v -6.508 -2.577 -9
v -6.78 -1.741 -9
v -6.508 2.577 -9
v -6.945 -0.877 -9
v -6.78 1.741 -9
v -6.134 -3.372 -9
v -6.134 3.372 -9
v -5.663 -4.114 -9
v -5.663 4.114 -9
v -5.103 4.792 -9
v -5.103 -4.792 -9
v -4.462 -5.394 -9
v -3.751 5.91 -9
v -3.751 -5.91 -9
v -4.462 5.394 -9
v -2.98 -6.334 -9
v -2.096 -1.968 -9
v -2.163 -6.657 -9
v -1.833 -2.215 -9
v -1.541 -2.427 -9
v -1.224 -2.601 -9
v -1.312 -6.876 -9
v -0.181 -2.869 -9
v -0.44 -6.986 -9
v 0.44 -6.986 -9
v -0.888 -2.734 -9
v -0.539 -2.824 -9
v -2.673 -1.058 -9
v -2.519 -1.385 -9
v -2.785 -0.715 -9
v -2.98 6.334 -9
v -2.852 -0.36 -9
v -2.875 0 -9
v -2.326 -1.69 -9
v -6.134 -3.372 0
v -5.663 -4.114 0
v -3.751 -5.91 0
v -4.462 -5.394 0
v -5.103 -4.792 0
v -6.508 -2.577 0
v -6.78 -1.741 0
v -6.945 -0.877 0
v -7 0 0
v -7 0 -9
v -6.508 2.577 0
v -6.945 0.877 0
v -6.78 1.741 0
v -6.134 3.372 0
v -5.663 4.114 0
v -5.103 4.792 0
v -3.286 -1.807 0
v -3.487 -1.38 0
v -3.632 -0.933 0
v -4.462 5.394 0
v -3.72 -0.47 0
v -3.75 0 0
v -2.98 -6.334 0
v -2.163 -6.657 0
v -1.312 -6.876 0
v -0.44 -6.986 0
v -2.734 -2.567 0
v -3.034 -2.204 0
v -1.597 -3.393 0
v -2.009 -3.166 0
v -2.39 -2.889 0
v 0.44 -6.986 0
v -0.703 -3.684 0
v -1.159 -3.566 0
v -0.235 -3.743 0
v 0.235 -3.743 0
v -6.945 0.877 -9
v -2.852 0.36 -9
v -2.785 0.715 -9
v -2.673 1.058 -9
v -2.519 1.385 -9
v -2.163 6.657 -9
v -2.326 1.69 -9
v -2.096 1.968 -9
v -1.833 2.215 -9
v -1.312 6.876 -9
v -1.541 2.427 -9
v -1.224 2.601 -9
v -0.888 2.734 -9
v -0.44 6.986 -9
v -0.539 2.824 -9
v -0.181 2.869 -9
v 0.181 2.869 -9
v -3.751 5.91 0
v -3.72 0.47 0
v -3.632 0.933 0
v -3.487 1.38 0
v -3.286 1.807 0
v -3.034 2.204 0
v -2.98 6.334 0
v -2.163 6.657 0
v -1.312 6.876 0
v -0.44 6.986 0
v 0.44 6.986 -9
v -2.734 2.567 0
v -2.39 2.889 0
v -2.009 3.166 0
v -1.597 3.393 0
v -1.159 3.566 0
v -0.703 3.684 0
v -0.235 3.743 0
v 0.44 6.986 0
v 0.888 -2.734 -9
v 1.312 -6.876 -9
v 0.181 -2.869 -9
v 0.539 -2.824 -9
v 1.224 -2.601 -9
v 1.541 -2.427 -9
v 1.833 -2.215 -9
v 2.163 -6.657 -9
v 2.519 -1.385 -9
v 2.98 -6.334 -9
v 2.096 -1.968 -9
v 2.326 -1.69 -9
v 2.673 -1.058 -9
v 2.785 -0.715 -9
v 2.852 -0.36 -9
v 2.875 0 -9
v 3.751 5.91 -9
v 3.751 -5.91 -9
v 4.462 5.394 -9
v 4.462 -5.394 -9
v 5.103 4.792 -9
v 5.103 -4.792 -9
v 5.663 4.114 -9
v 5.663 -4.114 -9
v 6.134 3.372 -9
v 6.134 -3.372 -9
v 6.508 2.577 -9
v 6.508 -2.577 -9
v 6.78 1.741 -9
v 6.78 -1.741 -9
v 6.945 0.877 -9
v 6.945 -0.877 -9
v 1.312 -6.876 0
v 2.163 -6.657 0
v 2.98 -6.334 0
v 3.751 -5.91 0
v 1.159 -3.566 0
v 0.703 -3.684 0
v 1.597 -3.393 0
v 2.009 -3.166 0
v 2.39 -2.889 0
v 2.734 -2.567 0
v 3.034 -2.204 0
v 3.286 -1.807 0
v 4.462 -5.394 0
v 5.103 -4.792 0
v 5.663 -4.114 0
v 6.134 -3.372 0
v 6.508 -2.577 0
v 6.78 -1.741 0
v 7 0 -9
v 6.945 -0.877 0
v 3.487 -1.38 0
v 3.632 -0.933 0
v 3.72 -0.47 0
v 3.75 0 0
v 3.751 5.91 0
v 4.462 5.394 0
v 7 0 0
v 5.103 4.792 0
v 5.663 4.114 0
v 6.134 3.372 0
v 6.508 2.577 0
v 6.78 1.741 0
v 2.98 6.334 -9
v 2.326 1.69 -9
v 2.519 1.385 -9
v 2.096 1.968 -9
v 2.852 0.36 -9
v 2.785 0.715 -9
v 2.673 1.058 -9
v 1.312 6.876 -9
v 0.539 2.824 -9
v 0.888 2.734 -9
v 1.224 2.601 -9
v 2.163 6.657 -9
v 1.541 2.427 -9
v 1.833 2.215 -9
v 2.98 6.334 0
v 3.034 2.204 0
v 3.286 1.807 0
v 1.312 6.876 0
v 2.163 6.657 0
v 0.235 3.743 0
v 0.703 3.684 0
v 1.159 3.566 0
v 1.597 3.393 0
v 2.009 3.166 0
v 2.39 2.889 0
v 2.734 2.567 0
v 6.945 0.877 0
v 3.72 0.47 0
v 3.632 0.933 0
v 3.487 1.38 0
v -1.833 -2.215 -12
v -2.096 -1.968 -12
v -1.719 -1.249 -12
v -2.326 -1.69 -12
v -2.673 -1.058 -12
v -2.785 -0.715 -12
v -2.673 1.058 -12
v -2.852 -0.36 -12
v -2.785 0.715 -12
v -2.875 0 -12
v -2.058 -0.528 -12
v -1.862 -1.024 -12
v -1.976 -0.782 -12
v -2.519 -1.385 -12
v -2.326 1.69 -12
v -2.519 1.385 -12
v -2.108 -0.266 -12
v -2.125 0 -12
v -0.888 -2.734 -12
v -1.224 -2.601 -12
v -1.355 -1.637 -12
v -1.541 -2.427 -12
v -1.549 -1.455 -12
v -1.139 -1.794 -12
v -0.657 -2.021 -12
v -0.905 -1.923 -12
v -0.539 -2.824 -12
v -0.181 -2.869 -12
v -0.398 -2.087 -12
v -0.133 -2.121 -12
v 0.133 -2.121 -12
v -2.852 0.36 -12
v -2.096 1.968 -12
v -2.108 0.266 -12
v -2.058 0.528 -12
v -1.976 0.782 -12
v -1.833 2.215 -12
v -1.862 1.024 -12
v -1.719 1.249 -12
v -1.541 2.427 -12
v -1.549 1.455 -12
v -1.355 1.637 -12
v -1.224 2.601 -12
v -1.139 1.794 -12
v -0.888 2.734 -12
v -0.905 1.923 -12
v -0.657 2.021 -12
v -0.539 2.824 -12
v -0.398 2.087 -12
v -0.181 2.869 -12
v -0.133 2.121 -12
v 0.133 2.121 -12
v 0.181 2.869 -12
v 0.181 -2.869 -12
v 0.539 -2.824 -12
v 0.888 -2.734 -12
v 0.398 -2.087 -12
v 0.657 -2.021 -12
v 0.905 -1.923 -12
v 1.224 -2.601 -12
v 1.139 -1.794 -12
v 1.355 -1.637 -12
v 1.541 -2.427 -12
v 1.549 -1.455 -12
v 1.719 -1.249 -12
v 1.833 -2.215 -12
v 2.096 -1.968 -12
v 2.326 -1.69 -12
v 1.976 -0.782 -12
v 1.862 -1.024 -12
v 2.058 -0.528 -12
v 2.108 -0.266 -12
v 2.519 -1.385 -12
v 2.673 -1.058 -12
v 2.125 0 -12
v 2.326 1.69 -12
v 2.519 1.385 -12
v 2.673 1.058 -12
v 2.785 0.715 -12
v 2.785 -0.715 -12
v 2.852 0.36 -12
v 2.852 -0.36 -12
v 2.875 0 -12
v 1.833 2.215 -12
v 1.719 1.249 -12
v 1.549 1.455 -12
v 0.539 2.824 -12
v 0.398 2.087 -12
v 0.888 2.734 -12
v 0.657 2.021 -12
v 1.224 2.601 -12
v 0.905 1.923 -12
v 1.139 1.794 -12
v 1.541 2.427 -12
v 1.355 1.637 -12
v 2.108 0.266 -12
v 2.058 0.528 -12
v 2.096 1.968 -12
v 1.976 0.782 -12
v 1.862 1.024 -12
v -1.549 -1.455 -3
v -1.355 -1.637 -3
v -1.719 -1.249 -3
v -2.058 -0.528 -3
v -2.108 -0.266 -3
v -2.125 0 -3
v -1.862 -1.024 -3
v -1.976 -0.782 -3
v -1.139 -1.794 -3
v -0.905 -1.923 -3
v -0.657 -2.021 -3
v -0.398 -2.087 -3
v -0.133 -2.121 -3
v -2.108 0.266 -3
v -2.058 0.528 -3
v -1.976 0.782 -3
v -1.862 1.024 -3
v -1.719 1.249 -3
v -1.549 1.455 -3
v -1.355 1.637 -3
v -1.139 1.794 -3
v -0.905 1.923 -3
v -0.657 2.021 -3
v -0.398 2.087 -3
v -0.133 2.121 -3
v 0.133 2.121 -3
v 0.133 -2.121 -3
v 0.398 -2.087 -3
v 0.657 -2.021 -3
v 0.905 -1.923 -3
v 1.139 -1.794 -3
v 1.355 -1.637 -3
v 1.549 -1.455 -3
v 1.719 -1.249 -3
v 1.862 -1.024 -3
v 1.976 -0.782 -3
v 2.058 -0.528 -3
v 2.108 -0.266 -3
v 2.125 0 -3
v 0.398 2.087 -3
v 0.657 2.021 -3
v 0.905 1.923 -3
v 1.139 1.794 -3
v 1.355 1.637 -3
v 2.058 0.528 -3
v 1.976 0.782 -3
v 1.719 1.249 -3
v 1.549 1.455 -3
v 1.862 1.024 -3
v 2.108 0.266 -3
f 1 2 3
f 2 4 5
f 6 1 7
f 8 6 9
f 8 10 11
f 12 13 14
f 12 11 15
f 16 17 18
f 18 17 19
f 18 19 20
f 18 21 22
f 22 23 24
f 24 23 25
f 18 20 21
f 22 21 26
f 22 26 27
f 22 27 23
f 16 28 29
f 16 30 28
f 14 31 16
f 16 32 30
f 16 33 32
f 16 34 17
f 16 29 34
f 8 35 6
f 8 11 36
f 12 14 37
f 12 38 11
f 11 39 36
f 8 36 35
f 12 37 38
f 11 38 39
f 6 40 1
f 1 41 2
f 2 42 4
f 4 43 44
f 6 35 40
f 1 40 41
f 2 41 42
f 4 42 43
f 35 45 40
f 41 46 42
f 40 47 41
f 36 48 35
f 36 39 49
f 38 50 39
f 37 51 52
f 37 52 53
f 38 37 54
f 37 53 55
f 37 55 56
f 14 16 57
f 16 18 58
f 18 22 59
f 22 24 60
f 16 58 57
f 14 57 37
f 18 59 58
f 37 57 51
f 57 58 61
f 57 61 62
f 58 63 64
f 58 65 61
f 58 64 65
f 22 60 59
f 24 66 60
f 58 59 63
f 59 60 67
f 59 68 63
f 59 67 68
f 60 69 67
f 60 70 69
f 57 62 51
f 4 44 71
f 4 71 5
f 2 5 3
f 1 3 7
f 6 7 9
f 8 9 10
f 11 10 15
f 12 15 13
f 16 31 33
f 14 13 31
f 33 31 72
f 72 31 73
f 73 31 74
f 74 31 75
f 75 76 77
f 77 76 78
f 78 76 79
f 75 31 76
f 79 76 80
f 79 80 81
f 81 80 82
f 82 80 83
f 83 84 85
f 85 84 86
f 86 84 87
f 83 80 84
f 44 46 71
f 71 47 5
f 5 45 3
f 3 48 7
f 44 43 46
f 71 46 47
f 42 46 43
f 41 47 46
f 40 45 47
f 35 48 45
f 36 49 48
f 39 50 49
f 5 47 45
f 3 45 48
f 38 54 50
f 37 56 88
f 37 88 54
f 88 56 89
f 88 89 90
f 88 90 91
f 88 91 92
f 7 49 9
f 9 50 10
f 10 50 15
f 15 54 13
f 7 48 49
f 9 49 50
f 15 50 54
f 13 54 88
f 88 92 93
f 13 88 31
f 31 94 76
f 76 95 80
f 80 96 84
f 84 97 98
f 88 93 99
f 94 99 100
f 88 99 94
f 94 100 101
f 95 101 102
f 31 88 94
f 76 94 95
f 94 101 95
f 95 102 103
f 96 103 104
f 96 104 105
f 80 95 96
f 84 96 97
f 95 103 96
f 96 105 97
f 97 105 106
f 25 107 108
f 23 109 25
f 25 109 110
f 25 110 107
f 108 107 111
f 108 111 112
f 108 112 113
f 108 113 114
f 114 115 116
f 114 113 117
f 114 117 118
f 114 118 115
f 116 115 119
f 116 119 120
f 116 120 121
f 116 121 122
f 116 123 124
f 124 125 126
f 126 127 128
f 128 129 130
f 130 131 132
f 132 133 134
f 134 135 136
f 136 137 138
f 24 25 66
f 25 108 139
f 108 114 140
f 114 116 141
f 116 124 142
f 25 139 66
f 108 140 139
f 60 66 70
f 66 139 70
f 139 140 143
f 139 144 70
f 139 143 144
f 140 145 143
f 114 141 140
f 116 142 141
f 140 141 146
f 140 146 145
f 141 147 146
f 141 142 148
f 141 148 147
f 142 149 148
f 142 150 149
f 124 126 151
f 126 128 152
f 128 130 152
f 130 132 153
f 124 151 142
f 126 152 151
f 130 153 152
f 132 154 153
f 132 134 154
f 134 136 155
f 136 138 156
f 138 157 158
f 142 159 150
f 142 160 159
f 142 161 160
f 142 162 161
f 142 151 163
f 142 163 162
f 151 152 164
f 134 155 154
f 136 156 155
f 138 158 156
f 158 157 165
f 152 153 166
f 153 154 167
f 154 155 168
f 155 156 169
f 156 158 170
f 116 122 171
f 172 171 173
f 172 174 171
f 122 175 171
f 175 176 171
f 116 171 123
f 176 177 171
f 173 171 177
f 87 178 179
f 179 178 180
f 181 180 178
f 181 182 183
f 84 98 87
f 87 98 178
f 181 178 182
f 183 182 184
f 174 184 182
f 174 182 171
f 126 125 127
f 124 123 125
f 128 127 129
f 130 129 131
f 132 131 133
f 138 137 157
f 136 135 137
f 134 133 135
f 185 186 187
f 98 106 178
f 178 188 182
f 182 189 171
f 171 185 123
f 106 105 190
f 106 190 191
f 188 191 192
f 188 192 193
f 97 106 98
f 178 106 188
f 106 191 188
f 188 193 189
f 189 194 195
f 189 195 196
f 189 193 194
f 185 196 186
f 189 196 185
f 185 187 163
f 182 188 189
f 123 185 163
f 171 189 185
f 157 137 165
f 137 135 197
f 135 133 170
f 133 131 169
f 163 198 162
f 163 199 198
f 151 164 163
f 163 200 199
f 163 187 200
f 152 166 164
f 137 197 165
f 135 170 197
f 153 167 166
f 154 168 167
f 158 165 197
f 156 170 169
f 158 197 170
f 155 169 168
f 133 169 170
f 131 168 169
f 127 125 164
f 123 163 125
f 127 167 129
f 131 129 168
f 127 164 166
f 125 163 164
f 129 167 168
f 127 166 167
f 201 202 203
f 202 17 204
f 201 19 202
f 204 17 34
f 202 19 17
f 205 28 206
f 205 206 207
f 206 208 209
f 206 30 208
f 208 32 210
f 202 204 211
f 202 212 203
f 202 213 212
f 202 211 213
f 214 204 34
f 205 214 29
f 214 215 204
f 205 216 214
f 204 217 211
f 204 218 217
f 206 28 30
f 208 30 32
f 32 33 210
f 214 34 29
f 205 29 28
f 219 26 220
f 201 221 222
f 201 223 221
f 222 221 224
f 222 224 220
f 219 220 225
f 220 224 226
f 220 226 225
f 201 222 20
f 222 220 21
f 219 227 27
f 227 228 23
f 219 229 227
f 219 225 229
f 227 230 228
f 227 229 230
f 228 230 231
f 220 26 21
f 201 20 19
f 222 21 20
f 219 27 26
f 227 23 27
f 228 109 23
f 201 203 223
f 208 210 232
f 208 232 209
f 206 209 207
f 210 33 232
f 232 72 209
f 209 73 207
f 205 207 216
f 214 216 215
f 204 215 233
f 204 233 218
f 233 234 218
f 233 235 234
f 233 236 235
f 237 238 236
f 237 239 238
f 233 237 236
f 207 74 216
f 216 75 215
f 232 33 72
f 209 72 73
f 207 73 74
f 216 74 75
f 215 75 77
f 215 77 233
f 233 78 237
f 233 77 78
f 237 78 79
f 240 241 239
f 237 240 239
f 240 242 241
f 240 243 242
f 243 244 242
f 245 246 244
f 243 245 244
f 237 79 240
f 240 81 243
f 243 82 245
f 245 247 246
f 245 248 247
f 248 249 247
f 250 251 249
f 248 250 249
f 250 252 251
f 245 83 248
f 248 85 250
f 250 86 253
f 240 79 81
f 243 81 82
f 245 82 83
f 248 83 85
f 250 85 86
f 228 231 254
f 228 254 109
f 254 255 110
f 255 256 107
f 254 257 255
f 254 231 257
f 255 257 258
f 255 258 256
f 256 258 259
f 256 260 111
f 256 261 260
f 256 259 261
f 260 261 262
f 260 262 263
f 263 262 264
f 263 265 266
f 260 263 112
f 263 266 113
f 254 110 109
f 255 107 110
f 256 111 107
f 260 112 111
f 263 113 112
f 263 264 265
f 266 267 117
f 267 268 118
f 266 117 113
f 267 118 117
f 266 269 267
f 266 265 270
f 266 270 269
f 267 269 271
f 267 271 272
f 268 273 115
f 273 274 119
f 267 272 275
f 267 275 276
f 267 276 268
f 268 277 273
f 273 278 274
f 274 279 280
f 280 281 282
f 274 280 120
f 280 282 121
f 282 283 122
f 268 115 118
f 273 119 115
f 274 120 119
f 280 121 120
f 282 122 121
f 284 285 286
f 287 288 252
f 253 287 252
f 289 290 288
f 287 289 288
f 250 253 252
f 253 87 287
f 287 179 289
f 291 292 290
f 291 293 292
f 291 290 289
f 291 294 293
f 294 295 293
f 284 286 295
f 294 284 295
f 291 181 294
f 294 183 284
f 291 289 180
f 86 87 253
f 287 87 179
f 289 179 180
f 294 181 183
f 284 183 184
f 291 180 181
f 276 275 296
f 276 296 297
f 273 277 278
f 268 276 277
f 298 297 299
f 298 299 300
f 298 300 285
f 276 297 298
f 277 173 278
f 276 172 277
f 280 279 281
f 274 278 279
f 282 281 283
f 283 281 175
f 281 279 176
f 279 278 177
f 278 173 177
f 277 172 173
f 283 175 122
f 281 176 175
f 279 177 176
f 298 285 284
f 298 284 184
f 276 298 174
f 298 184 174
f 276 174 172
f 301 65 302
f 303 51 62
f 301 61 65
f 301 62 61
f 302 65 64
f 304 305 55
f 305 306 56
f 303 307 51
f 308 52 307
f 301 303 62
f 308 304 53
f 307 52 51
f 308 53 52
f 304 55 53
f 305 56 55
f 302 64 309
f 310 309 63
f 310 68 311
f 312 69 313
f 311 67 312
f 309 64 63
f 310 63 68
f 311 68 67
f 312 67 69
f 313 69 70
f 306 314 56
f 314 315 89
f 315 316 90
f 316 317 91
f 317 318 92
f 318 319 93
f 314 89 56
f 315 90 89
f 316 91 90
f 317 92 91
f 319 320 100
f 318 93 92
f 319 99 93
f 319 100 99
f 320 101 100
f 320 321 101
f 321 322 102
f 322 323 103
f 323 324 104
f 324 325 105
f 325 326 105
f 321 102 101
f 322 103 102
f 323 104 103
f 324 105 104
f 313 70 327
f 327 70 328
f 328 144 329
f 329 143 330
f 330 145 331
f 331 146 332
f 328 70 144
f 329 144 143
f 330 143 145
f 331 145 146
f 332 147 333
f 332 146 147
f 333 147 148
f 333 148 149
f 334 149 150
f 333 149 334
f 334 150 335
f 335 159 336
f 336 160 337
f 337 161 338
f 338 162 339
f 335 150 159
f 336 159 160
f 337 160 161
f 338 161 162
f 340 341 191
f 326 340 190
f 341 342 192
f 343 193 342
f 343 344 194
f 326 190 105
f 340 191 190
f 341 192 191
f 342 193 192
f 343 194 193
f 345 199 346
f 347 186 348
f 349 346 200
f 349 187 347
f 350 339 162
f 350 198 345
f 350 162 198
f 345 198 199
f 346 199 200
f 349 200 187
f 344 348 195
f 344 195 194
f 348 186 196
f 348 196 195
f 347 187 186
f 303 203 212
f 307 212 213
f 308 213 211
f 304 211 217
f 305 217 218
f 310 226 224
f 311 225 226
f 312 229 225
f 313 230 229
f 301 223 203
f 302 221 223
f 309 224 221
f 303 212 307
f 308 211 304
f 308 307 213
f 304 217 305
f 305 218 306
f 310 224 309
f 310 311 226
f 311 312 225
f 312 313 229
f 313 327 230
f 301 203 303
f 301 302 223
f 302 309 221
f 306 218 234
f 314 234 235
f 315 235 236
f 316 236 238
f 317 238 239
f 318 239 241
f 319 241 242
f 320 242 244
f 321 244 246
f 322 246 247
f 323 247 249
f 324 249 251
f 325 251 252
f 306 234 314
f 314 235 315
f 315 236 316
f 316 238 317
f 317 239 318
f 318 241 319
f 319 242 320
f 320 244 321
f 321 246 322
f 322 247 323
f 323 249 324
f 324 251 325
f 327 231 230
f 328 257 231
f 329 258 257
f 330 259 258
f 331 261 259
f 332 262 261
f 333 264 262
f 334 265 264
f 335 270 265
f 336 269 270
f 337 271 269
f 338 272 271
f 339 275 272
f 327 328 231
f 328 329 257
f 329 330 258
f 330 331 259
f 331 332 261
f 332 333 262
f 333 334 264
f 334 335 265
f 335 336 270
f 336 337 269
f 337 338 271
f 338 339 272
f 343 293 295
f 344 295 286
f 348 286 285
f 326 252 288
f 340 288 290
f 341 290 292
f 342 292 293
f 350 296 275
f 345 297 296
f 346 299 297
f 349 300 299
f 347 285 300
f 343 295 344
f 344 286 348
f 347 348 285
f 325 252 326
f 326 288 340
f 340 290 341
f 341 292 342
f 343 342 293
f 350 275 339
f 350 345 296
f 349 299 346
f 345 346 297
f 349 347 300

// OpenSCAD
$fn = 50;

difference() {
	union() {
		translate(v = [0, 0, -9.0]) {
			cylinder(h = 9, r = 7.0);
		}
		#translate(v = [0, 0, -12.0]) {
			cylinder(h = 12, r = 2.875);
		}
	}
	union() {
		translate(v = [0, 0, 0]) {
			rotate(a = [0, 0, 0]) {
				difference() {
					union() {
						translate(v = [0, 0, -12.0]) {
							cylinder(h = 12, r = 2.0);
						}
						translate(v = [0, 0, -3]) {
							cylinder(h = 3, r1 = 2.125, r2 = 3.75);
						}
						translate(v = [0, 0, -12.0]) {
							cylinder(h = 12, r = 2.125);
						}
						translate(v = [0, 0, -12.0]) {
							cylinder(h = 12, r = 2.0);
						}
					}
					union();
				}
			}
		}
	}
}
